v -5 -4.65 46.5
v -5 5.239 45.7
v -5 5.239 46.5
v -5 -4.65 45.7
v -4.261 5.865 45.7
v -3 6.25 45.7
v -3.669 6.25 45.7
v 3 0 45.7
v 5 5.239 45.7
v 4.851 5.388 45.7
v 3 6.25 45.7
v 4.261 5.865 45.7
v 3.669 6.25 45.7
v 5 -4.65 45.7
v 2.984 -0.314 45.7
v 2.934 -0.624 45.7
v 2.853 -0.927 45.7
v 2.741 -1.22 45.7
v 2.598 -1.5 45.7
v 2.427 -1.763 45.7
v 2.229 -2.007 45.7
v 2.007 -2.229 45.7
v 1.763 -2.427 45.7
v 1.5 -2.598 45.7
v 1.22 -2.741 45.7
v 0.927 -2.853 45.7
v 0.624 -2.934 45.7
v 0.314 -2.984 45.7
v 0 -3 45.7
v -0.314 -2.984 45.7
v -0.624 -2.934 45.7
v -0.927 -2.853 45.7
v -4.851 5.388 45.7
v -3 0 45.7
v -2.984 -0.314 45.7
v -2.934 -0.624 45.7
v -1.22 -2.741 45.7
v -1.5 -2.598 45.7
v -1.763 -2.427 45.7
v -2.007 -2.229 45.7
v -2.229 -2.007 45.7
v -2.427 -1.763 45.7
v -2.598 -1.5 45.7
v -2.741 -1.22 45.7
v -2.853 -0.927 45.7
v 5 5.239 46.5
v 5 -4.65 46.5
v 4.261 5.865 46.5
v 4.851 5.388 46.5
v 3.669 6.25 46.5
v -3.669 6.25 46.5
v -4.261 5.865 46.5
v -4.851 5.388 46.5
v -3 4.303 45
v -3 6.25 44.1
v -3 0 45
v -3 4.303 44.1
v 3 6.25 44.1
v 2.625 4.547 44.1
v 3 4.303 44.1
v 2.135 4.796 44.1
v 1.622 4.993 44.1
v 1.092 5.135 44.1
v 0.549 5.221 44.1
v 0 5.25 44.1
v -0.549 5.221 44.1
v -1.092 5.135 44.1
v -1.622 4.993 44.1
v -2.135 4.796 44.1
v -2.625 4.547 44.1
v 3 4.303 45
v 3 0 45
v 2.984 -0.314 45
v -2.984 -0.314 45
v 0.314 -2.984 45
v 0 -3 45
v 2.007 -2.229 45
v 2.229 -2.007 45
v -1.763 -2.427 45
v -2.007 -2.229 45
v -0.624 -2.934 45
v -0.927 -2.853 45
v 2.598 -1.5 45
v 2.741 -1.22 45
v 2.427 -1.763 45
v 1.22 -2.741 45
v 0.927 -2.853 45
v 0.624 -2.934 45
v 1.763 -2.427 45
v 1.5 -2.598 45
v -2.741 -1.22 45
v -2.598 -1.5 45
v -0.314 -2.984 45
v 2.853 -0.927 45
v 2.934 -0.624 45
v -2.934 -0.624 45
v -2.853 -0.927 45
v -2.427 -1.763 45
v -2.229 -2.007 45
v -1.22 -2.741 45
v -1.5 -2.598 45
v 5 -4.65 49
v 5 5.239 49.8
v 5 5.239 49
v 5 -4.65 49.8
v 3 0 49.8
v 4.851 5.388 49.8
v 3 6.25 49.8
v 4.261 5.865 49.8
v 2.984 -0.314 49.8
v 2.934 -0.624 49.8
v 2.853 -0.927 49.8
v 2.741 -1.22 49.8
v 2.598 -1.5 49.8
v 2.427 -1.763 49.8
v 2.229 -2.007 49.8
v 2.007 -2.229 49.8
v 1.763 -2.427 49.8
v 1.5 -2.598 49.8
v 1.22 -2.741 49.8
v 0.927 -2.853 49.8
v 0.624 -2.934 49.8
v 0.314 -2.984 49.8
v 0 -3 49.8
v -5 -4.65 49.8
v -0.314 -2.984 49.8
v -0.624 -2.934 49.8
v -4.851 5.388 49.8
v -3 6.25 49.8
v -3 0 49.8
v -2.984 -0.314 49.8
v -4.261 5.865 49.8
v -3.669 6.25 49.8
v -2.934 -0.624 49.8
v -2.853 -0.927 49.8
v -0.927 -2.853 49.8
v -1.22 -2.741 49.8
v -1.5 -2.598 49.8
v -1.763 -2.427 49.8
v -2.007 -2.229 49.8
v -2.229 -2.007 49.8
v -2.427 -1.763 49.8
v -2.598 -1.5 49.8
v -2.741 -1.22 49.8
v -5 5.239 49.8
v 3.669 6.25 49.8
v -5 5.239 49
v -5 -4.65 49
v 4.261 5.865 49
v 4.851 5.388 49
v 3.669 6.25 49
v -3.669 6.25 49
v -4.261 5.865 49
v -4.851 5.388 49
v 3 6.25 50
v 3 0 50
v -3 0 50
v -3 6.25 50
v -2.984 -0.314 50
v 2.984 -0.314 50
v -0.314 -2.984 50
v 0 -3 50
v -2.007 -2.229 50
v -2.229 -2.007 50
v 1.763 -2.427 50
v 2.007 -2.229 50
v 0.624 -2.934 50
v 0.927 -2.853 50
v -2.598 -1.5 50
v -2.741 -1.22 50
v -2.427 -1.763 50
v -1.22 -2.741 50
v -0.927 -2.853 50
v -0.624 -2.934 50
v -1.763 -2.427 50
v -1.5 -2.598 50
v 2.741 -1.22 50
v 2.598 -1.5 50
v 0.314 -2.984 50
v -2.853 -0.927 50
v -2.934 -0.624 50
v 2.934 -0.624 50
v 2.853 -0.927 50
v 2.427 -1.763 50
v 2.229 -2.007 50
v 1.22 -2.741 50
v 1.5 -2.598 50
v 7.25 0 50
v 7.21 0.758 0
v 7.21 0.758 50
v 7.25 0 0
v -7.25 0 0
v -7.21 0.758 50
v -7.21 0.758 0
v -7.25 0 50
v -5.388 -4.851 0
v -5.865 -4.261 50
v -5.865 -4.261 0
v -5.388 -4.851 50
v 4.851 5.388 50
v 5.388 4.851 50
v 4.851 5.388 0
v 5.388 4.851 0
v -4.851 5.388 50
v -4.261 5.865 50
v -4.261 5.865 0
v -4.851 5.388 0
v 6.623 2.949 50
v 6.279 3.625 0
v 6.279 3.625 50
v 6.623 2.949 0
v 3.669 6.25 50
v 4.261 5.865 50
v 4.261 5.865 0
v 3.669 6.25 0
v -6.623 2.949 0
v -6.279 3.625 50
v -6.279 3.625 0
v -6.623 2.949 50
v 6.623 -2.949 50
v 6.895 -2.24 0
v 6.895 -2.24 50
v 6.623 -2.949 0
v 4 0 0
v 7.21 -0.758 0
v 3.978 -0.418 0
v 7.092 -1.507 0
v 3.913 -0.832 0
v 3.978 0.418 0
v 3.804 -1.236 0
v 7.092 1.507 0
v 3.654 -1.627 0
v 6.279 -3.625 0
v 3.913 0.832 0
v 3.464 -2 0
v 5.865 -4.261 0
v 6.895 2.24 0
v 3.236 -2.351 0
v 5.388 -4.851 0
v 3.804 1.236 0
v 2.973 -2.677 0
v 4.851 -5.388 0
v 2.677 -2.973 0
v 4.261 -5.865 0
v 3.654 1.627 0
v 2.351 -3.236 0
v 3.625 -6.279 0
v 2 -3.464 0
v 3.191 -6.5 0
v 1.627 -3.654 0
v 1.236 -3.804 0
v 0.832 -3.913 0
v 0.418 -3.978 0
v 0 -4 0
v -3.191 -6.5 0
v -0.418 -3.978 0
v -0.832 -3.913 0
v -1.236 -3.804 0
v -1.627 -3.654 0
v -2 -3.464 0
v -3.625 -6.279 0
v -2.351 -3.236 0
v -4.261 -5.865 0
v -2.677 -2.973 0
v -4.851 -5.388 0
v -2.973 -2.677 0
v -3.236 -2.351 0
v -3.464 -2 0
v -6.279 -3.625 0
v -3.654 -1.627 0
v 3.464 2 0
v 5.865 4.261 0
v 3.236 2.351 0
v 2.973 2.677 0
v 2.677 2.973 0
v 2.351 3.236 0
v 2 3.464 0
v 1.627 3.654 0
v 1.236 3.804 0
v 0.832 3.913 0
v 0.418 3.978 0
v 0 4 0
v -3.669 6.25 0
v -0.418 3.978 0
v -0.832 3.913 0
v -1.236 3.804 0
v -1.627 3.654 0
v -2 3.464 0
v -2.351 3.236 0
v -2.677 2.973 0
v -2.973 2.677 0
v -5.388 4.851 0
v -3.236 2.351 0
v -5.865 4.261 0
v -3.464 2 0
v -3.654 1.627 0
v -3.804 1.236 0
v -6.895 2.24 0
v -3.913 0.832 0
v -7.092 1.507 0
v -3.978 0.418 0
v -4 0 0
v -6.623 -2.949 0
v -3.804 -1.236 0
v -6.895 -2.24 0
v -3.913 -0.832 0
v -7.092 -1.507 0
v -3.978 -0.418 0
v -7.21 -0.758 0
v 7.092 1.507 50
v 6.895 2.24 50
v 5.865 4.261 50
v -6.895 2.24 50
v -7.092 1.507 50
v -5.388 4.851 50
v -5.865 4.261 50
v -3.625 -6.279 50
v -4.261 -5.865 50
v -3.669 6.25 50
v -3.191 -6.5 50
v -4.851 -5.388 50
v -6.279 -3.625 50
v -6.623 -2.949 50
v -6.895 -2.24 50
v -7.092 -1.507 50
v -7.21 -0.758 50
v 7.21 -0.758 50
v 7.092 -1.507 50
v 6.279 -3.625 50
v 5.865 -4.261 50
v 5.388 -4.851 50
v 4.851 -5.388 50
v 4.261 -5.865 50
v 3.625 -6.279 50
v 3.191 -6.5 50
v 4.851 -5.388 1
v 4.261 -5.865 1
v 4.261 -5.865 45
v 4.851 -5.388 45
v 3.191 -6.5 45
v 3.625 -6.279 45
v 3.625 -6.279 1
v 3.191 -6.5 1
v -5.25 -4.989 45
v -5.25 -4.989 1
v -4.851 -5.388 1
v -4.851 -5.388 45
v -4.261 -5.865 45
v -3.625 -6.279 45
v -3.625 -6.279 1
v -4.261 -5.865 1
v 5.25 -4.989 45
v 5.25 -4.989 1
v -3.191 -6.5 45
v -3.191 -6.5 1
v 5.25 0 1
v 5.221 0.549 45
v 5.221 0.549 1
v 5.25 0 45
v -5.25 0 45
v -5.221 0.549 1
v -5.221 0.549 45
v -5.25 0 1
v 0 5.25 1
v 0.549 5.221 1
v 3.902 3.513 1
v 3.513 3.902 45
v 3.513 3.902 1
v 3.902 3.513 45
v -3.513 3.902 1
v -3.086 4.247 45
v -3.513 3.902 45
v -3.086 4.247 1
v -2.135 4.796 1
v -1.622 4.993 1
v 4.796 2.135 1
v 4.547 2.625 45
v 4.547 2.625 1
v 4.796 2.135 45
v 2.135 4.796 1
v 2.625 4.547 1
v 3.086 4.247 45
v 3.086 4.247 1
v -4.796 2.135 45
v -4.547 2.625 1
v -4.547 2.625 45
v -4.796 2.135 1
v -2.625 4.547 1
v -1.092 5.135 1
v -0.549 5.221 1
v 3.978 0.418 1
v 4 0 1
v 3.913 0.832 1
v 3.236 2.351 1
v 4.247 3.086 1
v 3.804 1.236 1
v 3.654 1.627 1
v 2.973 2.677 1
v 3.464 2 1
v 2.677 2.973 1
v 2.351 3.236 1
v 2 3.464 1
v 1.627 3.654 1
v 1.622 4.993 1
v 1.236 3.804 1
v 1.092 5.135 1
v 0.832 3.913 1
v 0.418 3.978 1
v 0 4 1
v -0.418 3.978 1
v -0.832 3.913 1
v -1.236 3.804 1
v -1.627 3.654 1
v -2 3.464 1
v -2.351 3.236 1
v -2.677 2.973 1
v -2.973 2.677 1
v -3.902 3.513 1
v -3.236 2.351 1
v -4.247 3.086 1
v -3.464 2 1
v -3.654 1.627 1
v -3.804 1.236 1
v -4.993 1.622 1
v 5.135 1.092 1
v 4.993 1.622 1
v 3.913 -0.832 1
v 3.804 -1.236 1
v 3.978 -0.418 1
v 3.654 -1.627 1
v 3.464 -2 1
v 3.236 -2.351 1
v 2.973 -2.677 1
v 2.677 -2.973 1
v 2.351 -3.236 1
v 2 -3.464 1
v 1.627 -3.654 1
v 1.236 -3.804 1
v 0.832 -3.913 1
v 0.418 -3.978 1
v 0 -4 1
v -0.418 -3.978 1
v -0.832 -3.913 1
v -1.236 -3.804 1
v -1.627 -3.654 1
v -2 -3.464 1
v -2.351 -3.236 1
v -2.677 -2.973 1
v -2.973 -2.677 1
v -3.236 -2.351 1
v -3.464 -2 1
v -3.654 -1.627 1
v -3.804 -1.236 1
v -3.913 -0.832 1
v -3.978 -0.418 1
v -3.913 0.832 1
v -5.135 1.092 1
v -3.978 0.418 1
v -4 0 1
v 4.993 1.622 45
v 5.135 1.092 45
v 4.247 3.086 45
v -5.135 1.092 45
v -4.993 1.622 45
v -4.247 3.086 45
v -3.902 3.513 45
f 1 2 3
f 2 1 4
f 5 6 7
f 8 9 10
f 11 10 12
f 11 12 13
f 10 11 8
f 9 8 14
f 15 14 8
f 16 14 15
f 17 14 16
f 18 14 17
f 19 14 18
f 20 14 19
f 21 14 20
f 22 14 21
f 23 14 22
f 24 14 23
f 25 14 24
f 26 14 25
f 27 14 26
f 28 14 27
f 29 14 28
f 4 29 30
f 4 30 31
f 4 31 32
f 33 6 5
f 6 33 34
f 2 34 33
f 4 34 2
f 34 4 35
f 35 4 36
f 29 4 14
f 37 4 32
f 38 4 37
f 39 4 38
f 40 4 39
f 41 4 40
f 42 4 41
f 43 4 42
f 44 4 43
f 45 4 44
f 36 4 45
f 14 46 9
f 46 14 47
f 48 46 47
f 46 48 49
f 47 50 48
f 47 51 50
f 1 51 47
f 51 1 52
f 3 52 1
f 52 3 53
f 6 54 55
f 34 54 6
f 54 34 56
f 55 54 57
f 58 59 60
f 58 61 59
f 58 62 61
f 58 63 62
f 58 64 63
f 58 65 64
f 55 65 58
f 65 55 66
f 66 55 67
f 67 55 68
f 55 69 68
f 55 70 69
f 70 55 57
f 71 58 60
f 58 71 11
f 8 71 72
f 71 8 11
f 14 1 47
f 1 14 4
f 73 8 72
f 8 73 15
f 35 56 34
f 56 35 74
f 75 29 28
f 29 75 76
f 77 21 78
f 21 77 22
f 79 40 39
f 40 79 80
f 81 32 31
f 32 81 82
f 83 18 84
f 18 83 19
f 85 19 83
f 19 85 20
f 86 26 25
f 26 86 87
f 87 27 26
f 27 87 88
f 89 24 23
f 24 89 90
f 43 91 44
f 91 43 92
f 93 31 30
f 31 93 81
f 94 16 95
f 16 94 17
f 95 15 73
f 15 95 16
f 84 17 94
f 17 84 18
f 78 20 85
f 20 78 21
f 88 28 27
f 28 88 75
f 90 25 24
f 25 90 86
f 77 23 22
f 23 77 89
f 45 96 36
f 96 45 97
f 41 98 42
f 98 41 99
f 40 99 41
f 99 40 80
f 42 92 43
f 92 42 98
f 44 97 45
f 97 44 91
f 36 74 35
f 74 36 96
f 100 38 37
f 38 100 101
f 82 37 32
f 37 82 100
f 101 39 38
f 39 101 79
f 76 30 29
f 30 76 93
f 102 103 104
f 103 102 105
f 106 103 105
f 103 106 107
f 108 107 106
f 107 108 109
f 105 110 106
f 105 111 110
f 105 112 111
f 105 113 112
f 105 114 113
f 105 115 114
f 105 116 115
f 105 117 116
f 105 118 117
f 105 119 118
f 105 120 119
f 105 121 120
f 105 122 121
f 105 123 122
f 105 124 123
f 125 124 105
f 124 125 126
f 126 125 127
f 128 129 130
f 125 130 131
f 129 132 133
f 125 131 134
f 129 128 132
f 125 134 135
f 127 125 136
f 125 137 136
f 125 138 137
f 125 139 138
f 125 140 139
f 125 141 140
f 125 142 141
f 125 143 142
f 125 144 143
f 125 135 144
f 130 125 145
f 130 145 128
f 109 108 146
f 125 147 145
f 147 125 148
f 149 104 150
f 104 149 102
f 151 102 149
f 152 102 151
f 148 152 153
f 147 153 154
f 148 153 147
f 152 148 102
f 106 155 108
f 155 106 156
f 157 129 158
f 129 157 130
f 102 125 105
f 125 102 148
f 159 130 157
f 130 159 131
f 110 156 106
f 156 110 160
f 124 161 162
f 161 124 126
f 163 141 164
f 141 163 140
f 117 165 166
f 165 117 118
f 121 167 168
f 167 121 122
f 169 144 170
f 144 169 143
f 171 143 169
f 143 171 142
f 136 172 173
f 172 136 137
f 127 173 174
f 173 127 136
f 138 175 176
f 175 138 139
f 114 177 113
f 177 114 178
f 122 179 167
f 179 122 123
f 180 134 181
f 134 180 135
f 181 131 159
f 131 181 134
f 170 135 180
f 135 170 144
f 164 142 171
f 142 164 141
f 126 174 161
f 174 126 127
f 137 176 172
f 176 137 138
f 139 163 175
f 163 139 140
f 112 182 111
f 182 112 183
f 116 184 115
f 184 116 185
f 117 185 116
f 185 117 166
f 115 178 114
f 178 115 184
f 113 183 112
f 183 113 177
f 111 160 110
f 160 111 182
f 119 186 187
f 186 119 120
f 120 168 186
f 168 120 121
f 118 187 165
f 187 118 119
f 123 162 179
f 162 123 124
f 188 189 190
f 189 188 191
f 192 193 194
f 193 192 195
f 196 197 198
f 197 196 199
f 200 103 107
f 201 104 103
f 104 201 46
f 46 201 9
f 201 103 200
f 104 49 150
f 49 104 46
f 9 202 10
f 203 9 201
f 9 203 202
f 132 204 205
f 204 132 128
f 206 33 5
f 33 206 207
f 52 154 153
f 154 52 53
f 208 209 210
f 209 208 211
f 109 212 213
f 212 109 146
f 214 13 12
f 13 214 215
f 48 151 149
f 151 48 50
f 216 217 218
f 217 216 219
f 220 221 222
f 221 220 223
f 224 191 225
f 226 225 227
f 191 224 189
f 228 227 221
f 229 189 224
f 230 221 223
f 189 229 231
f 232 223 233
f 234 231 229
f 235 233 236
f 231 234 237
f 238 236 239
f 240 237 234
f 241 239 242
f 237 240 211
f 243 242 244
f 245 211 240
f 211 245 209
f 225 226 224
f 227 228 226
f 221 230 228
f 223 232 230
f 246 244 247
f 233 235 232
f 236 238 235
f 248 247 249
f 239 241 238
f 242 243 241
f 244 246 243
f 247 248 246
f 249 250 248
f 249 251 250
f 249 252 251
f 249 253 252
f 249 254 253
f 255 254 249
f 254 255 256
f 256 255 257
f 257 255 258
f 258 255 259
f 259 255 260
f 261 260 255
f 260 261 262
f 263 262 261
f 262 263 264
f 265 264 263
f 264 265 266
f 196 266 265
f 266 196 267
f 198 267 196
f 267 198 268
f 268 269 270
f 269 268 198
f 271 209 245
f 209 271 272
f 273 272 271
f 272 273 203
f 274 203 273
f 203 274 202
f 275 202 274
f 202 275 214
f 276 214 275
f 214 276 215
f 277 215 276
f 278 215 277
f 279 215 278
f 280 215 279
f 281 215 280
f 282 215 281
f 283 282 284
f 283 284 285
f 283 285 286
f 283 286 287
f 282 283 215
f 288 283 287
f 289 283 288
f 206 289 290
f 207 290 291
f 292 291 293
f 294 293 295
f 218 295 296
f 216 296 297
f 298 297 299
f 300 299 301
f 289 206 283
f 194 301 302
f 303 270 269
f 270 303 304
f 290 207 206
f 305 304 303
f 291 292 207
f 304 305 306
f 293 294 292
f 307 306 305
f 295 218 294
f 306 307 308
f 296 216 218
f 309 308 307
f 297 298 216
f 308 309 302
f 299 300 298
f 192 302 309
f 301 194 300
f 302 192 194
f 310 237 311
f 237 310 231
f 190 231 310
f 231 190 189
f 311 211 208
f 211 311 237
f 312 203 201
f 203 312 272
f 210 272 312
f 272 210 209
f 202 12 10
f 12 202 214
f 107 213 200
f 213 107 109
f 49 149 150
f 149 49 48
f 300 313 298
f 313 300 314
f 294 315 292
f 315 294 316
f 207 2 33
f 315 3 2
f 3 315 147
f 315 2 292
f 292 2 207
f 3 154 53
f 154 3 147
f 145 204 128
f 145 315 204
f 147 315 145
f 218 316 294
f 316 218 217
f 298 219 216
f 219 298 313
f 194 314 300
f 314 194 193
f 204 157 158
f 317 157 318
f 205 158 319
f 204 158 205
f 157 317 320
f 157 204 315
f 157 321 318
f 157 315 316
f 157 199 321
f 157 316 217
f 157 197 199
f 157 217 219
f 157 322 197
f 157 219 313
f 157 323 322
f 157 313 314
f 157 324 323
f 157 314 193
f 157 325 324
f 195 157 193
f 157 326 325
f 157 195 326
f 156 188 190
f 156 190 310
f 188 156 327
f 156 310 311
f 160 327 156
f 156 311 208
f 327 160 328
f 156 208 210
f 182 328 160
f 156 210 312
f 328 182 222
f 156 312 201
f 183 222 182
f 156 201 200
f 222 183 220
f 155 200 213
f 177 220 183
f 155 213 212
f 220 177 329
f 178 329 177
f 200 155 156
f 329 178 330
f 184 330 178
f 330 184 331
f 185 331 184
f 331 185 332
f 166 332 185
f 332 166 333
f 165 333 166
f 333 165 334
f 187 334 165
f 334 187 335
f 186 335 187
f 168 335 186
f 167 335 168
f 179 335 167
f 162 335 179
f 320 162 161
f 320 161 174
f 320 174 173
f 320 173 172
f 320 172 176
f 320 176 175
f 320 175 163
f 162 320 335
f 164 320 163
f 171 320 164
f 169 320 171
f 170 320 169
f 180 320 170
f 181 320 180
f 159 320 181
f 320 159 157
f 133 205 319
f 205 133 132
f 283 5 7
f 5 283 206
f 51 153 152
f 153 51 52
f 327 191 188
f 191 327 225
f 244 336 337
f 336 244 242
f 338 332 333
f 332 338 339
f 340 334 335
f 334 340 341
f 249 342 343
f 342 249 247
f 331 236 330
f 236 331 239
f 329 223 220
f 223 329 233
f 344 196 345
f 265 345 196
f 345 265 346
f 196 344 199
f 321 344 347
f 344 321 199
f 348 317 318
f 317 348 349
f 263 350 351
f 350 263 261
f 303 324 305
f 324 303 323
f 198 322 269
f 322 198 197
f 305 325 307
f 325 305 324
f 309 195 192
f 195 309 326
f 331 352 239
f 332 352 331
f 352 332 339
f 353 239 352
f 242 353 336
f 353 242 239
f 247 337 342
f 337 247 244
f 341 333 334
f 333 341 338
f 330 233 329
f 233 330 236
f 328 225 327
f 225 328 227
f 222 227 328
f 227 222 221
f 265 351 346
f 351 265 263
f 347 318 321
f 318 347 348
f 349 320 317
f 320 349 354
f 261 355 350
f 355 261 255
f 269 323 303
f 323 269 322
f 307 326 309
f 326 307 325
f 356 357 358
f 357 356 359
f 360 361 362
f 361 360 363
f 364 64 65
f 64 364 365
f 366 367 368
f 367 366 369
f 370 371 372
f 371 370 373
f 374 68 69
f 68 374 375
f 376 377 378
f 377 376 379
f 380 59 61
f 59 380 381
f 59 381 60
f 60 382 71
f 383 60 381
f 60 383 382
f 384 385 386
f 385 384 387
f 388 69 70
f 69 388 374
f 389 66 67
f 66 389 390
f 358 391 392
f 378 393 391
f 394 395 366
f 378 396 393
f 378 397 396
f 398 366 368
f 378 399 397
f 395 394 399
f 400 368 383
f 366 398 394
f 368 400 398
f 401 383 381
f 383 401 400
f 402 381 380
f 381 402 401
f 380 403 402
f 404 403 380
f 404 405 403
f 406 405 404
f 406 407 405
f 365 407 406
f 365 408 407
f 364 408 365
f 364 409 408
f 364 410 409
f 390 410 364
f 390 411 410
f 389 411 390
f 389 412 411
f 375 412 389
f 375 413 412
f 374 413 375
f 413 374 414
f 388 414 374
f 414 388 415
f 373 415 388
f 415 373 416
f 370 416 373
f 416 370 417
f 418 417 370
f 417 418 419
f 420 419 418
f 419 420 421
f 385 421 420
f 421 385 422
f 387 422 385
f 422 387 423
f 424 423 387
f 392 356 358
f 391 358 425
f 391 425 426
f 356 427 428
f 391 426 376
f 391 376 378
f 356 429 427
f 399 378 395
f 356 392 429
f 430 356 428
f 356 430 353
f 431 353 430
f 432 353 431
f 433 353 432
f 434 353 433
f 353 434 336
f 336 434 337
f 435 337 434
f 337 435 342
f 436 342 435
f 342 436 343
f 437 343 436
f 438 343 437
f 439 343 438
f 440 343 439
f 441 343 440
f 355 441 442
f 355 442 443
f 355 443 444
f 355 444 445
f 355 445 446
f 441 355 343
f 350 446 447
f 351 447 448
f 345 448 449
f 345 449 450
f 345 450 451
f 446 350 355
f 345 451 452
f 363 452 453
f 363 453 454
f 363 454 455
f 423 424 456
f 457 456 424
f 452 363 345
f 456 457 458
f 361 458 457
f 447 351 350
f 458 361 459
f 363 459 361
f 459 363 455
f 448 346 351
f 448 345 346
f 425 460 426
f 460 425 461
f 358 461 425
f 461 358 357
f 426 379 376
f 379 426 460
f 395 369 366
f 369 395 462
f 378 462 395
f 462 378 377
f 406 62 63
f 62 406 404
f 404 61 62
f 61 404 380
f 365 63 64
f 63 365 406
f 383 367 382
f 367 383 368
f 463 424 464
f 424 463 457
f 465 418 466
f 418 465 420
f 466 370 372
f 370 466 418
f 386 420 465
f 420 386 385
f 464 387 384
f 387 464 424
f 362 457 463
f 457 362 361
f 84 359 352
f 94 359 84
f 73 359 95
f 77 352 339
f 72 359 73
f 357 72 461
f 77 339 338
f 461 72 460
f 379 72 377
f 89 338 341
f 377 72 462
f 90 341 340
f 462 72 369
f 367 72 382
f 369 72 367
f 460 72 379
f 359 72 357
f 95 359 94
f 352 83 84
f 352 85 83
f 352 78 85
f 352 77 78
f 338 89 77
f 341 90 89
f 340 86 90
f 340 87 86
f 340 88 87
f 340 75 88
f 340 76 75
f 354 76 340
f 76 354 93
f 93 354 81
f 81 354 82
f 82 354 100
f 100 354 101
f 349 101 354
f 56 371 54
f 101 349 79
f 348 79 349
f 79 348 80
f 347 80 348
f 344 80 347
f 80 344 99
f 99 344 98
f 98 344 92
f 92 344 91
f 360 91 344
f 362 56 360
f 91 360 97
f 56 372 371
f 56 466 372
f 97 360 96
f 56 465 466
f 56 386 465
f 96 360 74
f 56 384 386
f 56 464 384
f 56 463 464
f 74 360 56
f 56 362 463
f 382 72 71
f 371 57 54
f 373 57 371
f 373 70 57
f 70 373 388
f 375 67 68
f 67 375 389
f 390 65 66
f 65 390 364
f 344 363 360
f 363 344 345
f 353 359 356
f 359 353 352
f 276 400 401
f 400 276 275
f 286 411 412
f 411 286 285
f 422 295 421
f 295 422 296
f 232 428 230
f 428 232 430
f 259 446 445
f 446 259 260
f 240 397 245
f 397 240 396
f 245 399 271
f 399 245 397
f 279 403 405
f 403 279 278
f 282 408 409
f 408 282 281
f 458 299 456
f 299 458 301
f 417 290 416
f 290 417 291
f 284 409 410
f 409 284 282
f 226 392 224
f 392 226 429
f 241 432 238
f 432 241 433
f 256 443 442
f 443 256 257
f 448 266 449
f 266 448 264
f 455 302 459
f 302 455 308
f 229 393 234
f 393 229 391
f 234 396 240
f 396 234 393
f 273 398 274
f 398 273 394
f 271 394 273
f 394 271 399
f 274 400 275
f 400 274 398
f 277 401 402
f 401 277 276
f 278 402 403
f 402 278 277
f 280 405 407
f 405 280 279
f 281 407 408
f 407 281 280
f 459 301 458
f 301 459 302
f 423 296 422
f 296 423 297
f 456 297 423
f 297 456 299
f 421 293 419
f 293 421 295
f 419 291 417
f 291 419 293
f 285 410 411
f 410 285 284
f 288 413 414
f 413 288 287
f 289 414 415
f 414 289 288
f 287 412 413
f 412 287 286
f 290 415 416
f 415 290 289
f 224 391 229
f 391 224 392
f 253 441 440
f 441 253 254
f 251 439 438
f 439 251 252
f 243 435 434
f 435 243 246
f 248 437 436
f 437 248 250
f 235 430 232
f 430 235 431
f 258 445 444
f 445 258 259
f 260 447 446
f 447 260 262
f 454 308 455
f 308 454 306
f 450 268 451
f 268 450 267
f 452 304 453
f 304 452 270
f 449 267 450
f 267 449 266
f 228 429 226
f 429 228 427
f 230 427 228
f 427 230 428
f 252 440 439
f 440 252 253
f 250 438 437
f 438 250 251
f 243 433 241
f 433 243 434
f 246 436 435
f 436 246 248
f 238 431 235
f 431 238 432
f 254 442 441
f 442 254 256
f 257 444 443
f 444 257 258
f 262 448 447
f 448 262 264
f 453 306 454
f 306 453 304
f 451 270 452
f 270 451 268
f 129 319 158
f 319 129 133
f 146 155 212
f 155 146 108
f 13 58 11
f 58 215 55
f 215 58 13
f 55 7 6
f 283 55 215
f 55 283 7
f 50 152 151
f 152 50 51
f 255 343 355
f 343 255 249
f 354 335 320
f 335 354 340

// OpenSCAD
include <BOSL/constants.scad>
use <BOSL/shapes.scad>
use <BOSL/transforms.scad>

//positive terminal minimum 1.0mm (included in height) -- max 5.5mm
//negative terminal minimum diameter 7mm
hAA=50;
dAA=14+0.5;

//positive terminal minimum 0.8mm (included in height) -- max 3.8mm
//negative terminal minimum diamter 3.8mm
hAAA=44.5-0.5;
dAAA=10.5;

//Metal Battery Spring Terminals
//additions are for "wiggle room"
slotWidthX = 9.7 + 0.3;
slotDepthY=9.0 + 0.3;
slotThicknessZ=0.40 + 0.40; // metal tab only -- does not count negative spring or positive bump!
tabWidthX=2.3;
tabDepthY=6.0;
tabOffset=0; // in degrees 

//General variables
$fn=60; //circle smoothness
overlap = 1.00; // overlap ensures that subtractions go beyond the edges

difference() {
  AA();
  up(1) AAA();
  up(1) forward(dAAA/2) AAAopening();
  cyl(d=8, h=1.5, align=V_UP); // hole at bottom for existing spring to poke through
  up(hAA-1) zrot(180-tabOffset) slot();
  up(hAA-3.5)  zrot(tabOffset) xrot(180) slot();
  back((dAA/2)+0.0) color("gray") cuboid([dAA, 2, hAA], align=V_UP); //flatten back
  forward((dAA/2)+0.25) color("gray") cuboid([dAA, 2, hAA], align=V_UP); //flatten front
}
  
 //preview
 //up(hAA+10)   slot();

module AA() { 
  color("orange") cyl(d=dAA, h=hAA, align=V_UP); 
}

module AAA() { 
  color("gold") cyl(d=dAAA, h=hAAA, align=V_UP); 
}

module AAAopening() { 
  color("khaki") cuboid([dAAA, dAAA , hAAA], align=V_UP); 
}

module slot() { 
  color("magenta") cuboid([slotWidthX, slotDepthY, slotThicknessZ], align=V_UP);
  color("deeppink") cyl(d=6, h=slotThicknessZ+1.6, align=V_UP);
  forward((slotDepthY/2)+(tabDepthY/2)) color("hotpink") cuboid([tabWidthX, tabDepthY, slotThicknessZ], align=V_UP);
  slotopening();
}

module slotopening() {
  forward(dAA/2) color("pink") cuboid([slotWidthX, dAA, slotThicknessZ], align=V_UP);
  forward(dAA/2) color("lightpink") cuboid([6, dAA, slotThicknessZ+1.6], align=V_UP);
}
